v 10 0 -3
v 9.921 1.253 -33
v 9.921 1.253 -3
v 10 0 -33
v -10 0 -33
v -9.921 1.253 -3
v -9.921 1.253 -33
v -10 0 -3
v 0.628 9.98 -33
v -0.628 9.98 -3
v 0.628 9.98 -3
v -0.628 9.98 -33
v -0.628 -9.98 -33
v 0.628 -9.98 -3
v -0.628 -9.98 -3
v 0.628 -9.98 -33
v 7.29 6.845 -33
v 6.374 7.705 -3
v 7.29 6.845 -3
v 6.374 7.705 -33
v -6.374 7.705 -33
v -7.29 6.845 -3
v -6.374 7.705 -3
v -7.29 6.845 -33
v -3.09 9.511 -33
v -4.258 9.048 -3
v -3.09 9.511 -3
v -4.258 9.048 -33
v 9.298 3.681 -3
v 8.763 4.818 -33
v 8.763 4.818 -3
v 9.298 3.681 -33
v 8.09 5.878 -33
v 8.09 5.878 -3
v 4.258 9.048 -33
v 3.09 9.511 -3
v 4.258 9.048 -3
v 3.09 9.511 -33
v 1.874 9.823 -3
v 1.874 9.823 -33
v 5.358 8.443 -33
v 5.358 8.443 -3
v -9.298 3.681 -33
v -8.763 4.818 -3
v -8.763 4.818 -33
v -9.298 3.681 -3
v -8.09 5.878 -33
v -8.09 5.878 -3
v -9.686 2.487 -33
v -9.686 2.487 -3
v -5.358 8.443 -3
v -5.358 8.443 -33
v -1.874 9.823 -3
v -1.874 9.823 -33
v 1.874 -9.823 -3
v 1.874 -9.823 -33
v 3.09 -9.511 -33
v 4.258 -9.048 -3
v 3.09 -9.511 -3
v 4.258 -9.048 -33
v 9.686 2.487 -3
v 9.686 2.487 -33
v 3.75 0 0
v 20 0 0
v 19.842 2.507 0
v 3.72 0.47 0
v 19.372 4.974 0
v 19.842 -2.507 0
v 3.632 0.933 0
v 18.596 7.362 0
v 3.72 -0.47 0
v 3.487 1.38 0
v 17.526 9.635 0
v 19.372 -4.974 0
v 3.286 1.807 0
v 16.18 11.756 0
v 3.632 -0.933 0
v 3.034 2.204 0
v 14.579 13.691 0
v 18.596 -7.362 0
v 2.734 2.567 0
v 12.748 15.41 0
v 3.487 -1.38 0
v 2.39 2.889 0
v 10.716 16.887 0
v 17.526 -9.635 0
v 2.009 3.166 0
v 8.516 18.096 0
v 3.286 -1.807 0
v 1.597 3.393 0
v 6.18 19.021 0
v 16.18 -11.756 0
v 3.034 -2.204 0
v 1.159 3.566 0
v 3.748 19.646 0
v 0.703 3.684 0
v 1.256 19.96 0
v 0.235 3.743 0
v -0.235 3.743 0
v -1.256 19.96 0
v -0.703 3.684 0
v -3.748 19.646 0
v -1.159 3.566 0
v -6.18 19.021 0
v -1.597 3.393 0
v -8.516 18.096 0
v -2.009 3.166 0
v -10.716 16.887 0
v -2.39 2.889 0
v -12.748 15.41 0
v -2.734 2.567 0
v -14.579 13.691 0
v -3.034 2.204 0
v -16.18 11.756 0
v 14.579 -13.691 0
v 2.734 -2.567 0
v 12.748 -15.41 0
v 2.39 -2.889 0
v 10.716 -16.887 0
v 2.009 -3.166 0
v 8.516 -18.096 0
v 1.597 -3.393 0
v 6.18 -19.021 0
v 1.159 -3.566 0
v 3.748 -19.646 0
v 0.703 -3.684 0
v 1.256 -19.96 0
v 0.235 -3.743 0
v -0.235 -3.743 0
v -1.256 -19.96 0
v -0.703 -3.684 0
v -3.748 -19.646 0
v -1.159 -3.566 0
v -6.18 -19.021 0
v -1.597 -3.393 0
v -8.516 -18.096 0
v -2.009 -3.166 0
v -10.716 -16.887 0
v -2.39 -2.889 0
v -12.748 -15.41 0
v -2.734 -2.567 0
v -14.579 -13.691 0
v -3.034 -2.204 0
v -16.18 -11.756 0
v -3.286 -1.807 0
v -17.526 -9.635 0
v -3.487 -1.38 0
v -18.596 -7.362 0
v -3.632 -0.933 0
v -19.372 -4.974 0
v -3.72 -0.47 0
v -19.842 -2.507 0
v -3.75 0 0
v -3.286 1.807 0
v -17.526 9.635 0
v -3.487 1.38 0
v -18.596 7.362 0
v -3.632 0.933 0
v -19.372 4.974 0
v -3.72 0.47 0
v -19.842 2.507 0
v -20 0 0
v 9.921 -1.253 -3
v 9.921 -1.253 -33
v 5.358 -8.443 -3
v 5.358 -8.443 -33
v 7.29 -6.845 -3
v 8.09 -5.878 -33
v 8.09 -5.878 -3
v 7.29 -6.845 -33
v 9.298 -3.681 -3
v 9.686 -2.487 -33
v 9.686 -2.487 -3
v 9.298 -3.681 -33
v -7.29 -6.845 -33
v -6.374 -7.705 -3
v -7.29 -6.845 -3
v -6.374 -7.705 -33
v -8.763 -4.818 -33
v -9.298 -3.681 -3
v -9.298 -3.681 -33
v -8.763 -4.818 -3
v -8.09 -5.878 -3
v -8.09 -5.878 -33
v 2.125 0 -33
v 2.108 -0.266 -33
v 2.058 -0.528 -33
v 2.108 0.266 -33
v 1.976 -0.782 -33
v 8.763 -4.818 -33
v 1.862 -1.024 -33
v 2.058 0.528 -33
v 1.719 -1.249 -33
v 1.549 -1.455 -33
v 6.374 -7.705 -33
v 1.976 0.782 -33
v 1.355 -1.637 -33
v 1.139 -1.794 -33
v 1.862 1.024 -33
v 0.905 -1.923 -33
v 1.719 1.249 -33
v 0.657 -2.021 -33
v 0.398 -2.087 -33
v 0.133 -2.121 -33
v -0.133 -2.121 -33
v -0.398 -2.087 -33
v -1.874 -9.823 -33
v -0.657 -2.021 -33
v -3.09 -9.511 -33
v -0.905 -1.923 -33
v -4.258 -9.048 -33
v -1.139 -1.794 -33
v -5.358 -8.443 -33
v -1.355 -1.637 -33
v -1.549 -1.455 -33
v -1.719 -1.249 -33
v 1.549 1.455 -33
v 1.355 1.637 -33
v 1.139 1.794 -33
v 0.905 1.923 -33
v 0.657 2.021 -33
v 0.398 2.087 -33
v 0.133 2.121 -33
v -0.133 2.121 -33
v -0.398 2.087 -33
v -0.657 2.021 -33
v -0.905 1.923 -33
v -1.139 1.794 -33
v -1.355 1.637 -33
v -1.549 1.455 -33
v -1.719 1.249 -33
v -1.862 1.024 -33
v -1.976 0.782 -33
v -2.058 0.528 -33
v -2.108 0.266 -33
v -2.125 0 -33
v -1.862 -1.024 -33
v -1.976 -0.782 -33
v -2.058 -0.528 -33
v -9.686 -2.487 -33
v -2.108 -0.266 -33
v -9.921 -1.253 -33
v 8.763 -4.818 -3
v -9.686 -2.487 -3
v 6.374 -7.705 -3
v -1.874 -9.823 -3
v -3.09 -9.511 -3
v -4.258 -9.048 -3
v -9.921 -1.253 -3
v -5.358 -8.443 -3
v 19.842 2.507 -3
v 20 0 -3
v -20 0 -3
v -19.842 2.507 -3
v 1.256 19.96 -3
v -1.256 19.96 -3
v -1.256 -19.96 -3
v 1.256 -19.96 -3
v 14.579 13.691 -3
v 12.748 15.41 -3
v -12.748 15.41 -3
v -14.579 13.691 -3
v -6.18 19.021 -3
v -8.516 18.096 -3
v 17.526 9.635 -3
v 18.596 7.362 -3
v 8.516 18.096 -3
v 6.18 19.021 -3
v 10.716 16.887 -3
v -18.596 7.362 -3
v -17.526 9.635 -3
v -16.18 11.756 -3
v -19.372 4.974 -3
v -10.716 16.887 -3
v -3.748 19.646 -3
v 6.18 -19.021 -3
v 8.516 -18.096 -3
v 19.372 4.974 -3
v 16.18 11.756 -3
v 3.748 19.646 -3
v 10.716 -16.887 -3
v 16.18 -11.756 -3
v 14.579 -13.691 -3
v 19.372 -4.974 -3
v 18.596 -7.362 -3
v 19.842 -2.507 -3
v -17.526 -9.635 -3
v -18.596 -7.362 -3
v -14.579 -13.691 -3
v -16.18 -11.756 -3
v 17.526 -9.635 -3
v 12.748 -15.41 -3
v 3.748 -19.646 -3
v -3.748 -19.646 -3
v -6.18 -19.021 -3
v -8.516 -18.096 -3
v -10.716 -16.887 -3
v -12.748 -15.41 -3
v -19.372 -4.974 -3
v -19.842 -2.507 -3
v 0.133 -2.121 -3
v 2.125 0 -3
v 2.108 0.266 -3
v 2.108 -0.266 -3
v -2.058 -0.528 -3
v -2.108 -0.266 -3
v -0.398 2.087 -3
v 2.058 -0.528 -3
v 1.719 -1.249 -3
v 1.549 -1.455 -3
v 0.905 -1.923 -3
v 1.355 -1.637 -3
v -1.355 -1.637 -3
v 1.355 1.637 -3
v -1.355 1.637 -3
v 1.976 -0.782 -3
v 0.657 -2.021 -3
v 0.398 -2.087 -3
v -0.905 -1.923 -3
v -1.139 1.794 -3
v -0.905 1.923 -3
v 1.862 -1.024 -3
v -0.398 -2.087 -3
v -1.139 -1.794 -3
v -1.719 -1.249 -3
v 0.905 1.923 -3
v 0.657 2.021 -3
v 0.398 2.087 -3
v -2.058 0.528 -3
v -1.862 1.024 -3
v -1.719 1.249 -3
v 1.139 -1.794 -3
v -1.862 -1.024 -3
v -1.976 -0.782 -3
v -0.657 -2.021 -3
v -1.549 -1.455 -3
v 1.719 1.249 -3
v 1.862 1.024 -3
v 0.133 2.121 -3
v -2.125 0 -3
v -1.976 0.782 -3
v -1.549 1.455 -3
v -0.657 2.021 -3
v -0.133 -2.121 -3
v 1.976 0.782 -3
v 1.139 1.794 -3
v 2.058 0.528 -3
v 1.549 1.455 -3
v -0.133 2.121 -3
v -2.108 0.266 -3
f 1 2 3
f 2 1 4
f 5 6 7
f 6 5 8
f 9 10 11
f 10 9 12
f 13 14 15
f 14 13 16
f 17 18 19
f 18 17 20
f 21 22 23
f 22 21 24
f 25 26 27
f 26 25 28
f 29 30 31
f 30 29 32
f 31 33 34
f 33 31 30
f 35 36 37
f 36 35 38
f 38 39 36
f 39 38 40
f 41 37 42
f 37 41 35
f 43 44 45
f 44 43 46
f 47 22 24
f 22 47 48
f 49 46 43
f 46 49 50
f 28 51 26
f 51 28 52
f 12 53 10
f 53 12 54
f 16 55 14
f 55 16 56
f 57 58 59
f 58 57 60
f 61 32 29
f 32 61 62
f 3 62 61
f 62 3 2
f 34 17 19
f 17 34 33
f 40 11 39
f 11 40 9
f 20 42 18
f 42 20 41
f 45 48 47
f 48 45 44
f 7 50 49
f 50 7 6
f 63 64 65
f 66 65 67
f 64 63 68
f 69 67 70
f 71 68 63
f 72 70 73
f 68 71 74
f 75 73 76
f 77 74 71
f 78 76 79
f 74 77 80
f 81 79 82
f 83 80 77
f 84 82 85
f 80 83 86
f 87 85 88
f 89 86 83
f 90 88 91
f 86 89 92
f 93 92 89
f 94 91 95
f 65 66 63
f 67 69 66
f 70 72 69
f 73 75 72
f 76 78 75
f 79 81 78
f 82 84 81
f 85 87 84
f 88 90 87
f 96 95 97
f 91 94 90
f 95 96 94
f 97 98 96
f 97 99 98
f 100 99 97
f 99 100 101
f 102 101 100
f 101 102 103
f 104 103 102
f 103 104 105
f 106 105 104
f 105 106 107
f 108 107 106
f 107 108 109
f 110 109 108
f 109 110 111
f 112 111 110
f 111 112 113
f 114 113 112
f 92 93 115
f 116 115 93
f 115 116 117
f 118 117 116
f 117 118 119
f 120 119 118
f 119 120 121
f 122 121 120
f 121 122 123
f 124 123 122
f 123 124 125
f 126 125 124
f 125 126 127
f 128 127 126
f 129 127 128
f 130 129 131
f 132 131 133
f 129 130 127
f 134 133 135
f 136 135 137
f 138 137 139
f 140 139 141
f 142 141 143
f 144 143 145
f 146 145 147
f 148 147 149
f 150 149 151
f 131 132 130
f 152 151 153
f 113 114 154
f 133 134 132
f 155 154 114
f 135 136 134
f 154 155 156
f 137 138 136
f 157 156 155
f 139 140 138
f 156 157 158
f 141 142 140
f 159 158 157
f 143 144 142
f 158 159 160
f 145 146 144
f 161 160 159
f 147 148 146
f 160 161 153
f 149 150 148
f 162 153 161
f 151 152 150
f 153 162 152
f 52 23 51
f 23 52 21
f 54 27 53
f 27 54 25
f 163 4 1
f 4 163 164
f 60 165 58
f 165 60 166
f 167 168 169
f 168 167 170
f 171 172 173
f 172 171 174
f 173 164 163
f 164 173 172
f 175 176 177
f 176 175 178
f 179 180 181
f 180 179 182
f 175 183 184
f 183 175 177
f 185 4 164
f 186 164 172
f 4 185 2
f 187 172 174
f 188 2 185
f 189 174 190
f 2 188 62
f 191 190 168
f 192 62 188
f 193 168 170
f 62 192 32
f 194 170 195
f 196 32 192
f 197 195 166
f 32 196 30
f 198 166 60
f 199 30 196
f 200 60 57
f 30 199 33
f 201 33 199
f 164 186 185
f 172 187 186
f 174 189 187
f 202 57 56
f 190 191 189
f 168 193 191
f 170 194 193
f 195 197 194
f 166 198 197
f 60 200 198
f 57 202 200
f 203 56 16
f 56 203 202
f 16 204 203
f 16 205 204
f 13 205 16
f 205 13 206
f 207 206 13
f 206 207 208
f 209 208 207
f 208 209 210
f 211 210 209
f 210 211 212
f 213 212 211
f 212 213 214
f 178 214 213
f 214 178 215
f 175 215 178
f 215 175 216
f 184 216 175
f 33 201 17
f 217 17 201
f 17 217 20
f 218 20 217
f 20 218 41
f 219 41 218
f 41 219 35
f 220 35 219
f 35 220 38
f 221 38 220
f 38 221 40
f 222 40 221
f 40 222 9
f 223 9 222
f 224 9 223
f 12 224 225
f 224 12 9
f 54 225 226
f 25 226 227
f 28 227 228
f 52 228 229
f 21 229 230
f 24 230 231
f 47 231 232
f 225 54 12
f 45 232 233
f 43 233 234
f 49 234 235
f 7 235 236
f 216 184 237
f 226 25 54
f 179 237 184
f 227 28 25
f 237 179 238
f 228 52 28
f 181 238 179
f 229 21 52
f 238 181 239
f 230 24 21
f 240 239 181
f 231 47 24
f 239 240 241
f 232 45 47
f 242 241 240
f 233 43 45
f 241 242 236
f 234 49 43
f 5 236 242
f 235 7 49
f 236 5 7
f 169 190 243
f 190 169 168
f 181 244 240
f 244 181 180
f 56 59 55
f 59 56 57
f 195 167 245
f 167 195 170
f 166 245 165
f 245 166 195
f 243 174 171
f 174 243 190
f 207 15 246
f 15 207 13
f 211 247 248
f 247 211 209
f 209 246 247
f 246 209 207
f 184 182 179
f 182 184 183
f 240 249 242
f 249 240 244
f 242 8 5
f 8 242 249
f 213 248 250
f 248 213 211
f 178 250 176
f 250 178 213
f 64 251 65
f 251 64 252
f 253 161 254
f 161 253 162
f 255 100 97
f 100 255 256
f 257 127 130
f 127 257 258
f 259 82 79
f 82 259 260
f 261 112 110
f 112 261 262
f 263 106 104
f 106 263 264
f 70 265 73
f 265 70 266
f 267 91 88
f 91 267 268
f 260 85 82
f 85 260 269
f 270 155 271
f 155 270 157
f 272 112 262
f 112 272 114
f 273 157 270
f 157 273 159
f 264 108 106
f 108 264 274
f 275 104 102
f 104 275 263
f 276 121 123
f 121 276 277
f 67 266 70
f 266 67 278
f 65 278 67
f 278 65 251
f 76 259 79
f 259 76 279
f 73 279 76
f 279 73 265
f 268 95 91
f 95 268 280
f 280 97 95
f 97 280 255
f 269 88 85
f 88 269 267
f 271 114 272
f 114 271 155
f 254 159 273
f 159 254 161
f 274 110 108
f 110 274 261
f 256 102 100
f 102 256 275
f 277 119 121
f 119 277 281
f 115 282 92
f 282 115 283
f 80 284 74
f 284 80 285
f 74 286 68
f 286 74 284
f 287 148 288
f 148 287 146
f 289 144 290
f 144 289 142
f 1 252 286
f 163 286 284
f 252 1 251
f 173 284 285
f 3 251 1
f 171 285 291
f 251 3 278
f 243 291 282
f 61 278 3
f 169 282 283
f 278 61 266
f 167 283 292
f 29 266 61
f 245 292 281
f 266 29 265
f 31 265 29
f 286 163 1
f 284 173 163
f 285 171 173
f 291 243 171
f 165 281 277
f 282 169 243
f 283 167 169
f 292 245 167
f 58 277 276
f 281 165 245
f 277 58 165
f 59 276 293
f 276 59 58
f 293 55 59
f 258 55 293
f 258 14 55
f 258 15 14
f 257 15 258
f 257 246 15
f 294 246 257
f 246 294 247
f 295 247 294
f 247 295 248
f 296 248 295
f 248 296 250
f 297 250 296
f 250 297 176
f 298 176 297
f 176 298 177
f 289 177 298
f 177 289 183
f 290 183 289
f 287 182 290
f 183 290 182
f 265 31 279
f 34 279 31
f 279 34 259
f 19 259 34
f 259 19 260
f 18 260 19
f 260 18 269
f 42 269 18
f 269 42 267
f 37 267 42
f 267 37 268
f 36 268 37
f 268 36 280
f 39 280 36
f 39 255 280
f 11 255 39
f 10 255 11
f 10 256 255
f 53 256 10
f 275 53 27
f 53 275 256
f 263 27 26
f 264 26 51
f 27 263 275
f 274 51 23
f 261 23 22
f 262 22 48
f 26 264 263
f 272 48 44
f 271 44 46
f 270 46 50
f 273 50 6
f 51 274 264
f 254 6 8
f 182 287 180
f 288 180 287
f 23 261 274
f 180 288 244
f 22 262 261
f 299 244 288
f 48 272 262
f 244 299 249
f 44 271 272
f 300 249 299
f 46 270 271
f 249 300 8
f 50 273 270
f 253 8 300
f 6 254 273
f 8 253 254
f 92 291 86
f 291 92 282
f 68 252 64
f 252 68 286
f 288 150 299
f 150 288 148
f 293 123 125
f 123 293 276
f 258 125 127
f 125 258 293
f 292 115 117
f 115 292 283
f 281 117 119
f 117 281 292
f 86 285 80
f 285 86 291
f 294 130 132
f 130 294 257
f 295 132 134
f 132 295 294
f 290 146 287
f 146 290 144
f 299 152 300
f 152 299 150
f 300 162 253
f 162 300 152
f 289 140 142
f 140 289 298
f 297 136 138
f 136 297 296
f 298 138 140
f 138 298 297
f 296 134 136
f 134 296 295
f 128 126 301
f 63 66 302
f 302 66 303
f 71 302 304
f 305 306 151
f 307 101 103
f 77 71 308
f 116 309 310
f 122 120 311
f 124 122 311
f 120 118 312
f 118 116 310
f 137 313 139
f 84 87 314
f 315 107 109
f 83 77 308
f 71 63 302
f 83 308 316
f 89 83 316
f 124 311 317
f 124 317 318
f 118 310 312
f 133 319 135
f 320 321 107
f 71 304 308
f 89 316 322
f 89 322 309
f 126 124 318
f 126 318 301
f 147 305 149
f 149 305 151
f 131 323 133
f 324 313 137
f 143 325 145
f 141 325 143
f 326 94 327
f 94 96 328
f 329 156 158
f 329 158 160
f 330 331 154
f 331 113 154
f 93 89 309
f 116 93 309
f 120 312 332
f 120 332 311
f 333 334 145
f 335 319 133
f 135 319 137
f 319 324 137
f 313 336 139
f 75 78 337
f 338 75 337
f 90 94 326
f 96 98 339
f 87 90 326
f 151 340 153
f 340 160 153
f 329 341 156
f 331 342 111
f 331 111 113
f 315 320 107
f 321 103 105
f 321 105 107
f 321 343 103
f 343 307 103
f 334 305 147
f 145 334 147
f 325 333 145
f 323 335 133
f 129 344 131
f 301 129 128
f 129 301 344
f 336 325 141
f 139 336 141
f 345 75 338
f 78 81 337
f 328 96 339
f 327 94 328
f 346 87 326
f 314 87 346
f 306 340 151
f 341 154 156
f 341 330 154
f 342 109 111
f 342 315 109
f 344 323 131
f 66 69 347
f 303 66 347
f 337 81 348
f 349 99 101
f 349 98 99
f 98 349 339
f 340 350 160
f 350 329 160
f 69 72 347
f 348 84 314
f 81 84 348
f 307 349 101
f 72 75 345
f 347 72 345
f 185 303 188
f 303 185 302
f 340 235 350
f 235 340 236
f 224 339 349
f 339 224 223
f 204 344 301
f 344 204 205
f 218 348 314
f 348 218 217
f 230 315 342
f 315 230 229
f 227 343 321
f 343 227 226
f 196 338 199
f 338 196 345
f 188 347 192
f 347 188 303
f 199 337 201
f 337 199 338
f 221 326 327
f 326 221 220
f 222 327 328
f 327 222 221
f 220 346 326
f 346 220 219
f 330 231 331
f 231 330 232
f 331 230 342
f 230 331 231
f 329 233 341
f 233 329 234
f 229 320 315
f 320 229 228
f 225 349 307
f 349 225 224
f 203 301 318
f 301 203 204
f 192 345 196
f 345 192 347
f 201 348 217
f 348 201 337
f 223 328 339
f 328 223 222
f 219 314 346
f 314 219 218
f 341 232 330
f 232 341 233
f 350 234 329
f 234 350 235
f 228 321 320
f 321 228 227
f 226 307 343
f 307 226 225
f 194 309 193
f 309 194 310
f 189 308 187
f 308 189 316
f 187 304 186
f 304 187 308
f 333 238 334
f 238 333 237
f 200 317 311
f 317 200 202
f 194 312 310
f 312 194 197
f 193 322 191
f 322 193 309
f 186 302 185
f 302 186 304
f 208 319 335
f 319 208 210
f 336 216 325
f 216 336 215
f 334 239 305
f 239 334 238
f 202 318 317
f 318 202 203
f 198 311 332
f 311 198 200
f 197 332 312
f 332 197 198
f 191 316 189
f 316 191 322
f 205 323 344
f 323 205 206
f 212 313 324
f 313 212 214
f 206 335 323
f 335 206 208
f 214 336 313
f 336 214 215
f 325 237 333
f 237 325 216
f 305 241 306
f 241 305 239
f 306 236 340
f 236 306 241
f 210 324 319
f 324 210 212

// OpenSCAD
$fn = 50;


difference() {
	union() {
		translate(v = [0, 0, -33.0000000000]) {
			cylinder(h = 33, r = 10.0000000000);
		}
		translate(v = [0, 0, -3.0000000000]) {
			cylinder(h = 3, r = 20.0000000000);
		}
	}
	union() {
		translate(v = [0, 0, 0]) {
			rotate(a = [0, 0, 0]) {
				difference() {
					union() {
						#translate(v = [0, 0, -33.0000000000]) {
							cylinder(h = 33, r = 2.0000000000);
						}
						#translate(v = [0, 0, -3]) {
							cylinder(h = 3, r = 10.0000000000, r1 = 2.1250000000, r2 = 3.7500000000);
						}
						#translate(v = [0, 0, -33.0000000000]) {
							cylinder(h = 33, r = 2.1250000000);
						}
						#translate(v = [0, 0, -33.0000000000]) {
							cylinder(h = 33, r = 2.0000000000);
						}
					}
					union();
				}
			}
		}
	}
}
